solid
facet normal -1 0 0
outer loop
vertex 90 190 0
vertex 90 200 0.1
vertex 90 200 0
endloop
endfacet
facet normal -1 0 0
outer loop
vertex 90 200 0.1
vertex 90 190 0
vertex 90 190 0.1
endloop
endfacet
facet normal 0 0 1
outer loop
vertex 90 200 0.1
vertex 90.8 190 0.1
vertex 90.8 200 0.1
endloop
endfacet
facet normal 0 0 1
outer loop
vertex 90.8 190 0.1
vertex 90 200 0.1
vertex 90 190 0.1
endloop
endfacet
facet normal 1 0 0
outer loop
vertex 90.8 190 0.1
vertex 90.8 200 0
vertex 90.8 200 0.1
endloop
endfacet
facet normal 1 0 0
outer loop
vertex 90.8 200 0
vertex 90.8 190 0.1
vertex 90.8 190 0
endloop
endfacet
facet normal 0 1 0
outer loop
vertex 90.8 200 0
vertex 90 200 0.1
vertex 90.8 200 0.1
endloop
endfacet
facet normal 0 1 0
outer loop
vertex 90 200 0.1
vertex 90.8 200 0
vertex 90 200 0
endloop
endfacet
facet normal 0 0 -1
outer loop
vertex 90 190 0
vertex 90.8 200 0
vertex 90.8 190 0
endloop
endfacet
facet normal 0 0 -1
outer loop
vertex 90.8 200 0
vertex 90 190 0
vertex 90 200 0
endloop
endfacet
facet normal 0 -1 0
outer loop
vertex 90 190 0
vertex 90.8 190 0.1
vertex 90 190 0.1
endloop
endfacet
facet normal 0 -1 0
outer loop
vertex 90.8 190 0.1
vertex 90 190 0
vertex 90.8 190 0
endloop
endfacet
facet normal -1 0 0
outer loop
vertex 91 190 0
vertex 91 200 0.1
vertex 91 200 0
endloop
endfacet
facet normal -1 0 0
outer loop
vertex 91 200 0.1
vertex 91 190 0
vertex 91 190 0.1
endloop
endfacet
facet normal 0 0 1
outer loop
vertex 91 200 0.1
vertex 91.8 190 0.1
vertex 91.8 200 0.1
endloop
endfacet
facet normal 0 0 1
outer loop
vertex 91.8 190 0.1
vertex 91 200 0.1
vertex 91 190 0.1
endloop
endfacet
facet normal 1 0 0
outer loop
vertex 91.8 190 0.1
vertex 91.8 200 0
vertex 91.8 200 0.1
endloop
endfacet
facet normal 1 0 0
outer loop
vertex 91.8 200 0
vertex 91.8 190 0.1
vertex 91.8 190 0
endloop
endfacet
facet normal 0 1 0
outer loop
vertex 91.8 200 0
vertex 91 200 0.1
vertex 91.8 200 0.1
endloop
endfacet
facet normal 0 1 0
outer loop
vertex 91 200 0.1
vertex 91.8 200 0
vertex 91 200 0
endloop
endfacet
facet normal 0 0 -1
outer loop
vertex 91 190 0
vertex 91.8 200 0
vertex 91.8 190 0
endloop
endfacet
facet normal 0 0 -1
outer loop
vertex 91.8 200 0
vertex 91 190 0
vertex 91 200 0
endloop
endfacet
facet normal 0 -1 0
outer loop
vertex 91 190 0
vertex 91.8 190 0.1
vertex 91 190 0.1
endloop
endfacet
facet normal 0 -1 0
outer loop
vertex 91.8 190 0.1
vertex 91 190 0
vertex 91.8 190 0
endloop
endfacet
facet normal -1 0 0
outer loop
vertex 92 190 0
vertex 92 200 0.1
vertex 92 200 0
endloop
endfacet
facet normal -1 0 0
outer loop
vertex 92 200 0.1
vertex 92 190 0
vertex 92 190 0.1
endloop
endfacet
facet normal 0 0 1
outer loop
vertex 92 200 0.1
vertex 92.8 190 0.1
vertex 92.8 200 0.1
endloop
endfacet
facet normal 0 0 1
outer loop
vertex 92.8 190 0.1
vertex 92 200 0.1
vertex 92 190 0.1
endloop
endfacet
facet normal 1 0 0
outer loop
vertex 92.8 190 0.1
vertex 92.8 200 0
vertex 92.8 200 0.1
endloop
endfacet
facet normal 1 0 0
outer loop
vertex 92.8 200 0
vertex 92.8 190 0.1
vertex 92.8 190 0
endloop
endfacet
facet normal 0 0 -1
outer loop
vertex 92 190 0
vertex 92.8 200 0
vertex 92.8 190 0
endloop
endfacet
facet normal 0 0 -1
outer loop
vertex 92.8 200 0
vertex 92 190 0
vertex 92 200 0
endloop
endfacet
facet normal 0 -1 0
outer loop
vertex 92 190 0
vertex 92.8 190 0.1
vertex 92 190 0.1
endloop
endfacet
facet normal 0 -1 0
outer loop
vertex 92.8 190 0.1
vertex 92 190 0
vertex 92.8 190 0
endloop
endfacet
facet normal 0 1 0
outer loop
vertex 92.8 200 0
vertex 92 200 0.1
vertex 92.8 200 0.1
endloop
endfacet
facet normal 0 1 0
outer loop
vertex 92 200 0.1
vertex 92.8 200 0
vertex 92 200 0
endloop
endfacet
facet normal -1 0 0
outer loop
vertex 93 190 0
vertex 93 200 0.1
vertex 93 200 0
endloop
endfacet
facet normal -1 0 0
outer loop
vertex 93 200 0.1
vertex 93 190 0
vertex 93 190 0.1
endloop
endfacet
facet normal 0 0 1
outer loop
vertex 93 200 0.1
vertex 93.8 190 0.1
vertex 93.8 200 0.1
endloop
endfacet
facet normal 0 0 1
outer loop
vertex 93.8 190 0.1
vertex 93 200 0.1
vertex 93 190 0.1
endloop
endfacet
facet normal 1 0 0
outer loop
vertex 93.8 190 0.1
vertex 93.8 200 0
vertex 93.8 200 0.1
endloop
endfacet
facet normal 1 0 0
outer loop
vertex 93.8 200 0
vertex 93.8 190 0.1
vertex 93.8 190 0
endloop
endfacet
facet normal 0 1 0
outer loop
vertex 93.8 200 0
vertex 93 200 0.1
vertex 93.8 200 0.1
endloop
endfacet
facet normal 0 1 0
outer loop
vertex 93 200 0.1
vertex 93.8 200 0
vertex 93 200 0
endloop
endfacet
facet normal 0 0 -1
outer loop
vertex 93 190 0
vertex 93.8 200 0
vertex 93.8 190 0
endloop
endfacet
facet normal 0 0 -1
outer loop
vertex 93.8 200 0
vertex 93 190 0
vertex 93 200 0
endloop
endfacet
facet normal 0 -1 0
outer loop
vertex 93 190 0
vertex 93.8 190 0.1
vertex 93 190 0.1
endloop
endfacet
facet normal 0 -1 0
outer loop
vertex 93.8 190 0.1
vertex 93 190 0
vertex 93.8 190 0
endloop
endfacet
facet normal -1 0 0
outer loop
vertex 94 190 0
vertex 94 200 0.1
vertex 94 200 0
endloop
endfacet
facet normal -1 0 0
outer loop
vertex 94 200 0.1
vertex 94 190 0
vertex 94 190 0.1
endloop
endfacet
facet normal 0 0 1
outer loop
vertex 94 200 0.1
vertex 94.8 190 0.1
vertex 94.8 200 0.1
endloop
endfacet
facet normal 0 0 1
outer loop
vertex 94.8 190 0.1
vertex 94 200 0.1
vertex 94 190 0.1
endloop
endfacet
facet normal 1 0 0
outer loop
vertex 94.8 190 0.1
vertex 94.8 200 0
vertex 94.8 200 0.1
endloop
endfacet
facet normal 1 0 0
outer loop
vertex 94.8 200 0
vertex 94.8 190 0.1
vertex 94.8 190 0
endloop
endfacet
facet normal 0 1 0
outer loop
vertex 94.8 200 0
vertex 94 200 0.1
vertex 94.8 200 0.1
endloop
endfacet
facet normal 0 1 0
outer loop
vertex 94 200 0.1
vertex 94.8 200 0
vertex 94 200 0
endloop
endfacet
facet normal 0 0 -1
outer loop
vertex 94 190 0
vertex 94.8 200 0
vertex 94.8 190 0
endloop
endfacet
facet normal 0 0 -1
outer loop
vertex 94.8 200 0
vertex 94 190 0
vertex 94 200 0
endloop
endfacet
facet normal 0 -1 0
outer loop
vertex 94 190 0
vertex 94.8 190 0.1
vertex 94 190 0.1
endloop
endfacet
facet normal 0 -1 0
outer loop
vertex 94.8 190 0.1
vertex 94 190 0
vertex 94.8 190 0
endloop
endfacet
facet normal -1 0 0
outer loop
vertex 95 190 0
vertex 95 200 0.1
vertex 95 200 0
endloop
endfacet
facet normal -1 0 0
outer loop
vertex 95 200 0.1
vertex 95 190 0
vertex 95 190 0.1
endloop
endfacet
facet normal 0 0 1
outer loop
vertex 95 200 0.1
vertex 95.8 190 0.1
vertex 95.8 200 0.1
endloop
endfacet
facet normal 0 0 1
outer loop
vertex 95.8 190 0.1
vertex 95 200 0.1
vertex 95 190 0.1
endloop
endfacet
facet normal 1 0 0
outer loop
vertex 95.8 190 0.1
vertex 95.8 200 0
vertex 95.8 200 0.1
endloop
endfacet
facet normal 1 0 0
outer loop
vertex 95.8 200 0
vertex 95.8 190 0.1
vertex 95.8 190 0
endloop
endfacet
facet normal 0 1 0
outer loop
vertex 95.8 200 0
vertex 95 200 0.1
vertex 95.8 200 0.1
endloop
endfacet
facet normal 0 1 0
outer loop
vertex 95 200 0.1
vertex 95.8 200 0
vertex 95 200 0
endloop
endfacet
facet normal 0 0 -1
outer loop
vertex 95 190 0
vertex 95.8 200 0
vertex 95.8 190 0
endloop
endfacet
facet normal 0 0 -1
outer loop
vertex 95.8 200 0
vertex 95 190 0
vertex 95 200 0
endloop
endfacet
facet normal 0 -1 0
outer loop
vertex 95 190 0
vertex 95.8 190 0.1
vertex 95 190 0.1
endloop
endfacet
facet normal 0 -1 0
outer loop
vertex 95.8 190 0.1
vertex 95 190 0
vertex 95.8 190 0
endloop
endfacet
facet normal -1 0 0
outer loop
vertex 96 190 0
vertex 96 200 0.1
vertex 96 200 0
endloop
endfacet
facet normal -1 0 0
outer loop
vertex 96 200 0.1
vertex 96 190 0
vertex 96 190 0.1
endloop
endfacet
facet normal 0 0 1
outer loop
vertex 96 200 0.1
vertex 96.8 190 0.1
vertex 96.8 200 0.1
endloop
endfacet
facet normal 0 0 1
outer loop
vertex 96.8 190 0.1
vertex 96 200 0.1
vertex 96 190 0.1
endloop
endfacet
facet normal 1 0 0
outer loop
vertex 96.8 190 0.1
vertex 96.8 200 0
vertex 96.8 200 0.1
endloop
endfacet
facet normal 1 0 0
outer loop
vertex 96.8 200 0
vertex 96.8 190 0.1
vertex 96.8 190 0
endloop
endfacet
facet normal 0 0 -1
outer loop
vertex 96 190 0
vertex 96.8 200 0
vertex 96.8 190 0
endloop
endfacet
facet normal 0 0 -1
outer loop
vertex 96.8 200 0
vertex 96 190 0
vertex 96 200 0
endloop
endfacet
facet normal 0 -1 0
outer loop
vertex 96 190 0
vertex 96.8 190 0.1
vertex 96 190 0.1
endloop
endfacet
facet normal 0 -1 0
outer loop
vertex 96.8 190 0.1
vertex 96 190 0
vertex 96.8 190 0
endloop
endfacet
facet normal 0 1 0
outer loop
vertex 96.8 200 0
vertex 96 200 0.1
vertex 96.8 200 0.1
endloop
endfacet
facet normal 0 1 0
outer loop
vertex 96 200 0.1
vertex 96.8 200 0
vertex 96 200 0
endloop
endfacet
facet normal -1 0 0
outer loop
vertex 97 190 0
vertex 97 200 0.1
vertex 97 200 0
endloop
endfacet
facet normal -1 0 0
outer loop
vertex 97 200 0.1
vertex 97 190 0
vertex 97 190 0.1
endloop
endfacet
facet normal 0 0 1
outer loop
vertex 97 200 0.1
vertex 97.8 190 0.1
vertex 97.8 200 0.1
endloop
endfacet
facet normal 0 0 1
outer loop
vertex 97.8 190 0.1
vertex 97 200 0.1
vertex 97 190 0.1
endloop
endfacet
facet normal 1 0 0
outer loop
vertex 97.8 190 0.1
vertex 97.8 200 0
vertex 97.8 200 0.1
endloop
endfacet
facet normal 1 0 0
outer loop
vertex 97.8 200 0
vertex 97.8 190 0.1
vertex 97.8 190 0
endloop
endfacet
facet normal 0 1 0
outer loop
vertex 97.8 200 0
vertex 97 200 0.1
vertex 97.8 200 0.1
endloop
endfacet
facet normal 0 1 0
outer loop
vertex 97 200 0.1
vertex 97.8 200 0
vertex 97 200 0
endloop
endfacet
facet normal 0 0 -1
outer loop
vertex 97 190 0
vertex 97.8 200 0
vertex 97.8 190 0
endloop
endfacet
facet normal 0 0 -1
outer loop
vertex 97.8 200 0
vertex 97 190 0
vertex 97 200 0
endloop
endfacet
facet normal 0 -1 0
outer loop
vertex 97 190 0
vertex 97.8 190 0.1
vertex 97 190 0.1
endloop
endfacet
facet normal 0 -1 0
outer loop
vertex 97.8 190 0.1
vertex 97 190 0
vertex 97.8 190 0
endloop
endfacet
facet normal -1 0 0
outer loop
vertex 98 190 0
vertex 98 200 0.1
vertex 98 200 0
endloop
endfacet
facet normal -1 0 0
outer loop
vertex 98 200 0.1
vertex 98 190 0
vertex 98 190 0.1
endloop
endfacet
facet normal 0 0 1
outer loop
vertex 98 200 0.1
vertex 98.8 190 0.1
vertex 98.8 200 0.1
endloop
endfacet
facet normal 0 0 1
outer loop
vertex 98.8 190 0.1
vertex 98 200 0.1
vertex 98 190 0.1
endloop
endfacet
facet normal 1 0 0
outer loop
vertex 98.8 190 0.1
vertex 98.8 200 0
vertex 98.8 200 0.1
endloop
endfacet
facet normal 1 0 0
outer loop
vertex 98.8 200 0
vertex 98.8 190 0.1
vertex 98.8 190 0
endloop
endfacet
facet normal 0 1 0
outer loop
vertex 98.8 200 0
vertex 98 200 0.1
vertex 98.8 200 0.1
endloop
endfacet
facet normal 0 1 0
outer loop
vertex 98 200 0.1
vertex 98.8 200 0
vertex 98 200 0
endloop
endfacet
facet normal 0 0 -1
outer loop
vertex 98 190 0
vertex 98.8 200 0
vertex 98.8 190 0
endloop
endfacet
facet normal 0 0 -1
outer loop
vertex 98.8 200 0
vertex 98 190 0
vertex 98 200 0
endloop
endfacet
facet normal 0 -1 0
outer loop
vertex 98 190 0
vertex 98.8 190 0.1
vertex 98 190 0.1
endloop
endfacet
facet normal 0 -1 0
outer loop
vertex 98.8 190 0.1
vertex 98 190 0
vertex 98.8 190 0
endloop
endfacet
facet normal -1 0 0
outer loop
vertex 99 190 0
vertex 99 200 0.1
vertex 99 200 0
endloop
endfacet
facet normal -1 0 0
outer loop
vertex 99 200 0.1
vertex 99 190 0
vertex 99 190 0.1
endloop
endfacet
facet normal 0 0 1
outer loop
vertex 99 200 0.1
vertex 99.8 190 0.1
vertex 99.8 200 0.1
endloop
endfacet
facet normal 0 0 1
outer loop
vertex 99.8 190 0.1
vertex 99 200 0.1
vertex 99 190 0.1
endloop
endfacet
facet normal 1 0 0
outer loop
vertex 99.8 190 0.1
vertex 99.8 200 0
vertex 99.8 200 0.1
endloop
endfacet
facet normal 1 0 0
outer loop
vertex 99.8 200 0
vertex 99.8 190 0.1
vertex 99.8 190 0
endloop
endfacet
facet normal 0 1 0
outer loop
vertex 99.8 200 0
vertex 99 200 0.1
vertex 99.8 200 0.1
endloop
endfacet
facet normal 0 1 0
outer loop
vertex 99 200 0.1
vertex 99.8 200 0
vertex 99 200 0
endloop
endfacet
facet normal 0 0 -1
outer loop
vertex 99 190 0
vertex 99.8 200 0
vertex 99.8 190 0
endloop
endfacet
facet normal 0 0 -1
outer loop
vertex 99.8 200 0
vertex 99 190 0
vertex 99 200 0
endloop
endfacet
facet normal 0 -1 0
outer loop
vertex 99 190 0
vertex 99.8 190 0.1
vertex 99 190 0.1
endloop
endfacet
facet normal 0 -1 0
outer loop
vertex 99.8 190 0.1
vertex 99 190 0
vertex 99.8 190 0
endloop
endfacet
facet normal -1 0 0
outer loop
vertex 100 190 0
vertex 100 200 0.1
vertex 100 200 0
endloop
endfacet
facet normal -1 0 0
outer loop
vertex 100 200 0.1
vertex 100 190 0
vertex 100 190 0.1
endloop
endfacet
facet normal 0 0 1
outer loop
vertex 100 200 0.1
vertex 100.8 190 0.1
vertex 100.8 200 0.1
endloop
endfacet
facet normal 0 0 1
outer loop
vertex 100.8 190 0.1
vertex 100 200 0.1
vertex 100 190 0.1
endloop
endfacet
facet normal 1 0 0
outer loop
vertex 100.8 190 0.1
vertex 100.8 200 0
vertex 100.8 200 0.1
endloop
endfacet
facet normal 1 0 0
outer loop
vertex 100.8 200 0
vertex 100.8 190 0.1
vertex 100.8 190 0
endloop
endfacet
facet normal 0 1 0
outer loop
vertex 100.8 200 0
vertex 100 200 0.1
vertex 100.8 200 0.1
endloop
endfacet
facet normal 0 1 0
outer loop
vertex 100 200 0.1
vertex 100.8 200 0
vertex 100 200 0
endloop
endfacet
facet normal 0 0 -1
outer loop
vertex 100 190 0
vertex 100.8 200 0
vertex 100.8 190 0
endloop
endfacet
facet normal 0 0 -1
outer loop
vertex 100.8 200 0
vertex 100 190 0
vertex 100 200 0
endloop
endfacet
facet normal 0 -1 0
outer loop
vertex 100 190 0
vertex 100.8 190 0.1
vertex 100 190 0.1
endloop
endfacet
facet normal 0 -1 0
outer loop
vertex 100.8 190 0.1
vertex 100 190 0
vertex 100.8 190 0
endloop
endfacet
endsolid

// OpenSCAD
translate([10+80,10+180,0])
        for (i = [0 : 10]){
            translate([i,0,0])
                cube(size = [0.8,10,0.1]);
    }
